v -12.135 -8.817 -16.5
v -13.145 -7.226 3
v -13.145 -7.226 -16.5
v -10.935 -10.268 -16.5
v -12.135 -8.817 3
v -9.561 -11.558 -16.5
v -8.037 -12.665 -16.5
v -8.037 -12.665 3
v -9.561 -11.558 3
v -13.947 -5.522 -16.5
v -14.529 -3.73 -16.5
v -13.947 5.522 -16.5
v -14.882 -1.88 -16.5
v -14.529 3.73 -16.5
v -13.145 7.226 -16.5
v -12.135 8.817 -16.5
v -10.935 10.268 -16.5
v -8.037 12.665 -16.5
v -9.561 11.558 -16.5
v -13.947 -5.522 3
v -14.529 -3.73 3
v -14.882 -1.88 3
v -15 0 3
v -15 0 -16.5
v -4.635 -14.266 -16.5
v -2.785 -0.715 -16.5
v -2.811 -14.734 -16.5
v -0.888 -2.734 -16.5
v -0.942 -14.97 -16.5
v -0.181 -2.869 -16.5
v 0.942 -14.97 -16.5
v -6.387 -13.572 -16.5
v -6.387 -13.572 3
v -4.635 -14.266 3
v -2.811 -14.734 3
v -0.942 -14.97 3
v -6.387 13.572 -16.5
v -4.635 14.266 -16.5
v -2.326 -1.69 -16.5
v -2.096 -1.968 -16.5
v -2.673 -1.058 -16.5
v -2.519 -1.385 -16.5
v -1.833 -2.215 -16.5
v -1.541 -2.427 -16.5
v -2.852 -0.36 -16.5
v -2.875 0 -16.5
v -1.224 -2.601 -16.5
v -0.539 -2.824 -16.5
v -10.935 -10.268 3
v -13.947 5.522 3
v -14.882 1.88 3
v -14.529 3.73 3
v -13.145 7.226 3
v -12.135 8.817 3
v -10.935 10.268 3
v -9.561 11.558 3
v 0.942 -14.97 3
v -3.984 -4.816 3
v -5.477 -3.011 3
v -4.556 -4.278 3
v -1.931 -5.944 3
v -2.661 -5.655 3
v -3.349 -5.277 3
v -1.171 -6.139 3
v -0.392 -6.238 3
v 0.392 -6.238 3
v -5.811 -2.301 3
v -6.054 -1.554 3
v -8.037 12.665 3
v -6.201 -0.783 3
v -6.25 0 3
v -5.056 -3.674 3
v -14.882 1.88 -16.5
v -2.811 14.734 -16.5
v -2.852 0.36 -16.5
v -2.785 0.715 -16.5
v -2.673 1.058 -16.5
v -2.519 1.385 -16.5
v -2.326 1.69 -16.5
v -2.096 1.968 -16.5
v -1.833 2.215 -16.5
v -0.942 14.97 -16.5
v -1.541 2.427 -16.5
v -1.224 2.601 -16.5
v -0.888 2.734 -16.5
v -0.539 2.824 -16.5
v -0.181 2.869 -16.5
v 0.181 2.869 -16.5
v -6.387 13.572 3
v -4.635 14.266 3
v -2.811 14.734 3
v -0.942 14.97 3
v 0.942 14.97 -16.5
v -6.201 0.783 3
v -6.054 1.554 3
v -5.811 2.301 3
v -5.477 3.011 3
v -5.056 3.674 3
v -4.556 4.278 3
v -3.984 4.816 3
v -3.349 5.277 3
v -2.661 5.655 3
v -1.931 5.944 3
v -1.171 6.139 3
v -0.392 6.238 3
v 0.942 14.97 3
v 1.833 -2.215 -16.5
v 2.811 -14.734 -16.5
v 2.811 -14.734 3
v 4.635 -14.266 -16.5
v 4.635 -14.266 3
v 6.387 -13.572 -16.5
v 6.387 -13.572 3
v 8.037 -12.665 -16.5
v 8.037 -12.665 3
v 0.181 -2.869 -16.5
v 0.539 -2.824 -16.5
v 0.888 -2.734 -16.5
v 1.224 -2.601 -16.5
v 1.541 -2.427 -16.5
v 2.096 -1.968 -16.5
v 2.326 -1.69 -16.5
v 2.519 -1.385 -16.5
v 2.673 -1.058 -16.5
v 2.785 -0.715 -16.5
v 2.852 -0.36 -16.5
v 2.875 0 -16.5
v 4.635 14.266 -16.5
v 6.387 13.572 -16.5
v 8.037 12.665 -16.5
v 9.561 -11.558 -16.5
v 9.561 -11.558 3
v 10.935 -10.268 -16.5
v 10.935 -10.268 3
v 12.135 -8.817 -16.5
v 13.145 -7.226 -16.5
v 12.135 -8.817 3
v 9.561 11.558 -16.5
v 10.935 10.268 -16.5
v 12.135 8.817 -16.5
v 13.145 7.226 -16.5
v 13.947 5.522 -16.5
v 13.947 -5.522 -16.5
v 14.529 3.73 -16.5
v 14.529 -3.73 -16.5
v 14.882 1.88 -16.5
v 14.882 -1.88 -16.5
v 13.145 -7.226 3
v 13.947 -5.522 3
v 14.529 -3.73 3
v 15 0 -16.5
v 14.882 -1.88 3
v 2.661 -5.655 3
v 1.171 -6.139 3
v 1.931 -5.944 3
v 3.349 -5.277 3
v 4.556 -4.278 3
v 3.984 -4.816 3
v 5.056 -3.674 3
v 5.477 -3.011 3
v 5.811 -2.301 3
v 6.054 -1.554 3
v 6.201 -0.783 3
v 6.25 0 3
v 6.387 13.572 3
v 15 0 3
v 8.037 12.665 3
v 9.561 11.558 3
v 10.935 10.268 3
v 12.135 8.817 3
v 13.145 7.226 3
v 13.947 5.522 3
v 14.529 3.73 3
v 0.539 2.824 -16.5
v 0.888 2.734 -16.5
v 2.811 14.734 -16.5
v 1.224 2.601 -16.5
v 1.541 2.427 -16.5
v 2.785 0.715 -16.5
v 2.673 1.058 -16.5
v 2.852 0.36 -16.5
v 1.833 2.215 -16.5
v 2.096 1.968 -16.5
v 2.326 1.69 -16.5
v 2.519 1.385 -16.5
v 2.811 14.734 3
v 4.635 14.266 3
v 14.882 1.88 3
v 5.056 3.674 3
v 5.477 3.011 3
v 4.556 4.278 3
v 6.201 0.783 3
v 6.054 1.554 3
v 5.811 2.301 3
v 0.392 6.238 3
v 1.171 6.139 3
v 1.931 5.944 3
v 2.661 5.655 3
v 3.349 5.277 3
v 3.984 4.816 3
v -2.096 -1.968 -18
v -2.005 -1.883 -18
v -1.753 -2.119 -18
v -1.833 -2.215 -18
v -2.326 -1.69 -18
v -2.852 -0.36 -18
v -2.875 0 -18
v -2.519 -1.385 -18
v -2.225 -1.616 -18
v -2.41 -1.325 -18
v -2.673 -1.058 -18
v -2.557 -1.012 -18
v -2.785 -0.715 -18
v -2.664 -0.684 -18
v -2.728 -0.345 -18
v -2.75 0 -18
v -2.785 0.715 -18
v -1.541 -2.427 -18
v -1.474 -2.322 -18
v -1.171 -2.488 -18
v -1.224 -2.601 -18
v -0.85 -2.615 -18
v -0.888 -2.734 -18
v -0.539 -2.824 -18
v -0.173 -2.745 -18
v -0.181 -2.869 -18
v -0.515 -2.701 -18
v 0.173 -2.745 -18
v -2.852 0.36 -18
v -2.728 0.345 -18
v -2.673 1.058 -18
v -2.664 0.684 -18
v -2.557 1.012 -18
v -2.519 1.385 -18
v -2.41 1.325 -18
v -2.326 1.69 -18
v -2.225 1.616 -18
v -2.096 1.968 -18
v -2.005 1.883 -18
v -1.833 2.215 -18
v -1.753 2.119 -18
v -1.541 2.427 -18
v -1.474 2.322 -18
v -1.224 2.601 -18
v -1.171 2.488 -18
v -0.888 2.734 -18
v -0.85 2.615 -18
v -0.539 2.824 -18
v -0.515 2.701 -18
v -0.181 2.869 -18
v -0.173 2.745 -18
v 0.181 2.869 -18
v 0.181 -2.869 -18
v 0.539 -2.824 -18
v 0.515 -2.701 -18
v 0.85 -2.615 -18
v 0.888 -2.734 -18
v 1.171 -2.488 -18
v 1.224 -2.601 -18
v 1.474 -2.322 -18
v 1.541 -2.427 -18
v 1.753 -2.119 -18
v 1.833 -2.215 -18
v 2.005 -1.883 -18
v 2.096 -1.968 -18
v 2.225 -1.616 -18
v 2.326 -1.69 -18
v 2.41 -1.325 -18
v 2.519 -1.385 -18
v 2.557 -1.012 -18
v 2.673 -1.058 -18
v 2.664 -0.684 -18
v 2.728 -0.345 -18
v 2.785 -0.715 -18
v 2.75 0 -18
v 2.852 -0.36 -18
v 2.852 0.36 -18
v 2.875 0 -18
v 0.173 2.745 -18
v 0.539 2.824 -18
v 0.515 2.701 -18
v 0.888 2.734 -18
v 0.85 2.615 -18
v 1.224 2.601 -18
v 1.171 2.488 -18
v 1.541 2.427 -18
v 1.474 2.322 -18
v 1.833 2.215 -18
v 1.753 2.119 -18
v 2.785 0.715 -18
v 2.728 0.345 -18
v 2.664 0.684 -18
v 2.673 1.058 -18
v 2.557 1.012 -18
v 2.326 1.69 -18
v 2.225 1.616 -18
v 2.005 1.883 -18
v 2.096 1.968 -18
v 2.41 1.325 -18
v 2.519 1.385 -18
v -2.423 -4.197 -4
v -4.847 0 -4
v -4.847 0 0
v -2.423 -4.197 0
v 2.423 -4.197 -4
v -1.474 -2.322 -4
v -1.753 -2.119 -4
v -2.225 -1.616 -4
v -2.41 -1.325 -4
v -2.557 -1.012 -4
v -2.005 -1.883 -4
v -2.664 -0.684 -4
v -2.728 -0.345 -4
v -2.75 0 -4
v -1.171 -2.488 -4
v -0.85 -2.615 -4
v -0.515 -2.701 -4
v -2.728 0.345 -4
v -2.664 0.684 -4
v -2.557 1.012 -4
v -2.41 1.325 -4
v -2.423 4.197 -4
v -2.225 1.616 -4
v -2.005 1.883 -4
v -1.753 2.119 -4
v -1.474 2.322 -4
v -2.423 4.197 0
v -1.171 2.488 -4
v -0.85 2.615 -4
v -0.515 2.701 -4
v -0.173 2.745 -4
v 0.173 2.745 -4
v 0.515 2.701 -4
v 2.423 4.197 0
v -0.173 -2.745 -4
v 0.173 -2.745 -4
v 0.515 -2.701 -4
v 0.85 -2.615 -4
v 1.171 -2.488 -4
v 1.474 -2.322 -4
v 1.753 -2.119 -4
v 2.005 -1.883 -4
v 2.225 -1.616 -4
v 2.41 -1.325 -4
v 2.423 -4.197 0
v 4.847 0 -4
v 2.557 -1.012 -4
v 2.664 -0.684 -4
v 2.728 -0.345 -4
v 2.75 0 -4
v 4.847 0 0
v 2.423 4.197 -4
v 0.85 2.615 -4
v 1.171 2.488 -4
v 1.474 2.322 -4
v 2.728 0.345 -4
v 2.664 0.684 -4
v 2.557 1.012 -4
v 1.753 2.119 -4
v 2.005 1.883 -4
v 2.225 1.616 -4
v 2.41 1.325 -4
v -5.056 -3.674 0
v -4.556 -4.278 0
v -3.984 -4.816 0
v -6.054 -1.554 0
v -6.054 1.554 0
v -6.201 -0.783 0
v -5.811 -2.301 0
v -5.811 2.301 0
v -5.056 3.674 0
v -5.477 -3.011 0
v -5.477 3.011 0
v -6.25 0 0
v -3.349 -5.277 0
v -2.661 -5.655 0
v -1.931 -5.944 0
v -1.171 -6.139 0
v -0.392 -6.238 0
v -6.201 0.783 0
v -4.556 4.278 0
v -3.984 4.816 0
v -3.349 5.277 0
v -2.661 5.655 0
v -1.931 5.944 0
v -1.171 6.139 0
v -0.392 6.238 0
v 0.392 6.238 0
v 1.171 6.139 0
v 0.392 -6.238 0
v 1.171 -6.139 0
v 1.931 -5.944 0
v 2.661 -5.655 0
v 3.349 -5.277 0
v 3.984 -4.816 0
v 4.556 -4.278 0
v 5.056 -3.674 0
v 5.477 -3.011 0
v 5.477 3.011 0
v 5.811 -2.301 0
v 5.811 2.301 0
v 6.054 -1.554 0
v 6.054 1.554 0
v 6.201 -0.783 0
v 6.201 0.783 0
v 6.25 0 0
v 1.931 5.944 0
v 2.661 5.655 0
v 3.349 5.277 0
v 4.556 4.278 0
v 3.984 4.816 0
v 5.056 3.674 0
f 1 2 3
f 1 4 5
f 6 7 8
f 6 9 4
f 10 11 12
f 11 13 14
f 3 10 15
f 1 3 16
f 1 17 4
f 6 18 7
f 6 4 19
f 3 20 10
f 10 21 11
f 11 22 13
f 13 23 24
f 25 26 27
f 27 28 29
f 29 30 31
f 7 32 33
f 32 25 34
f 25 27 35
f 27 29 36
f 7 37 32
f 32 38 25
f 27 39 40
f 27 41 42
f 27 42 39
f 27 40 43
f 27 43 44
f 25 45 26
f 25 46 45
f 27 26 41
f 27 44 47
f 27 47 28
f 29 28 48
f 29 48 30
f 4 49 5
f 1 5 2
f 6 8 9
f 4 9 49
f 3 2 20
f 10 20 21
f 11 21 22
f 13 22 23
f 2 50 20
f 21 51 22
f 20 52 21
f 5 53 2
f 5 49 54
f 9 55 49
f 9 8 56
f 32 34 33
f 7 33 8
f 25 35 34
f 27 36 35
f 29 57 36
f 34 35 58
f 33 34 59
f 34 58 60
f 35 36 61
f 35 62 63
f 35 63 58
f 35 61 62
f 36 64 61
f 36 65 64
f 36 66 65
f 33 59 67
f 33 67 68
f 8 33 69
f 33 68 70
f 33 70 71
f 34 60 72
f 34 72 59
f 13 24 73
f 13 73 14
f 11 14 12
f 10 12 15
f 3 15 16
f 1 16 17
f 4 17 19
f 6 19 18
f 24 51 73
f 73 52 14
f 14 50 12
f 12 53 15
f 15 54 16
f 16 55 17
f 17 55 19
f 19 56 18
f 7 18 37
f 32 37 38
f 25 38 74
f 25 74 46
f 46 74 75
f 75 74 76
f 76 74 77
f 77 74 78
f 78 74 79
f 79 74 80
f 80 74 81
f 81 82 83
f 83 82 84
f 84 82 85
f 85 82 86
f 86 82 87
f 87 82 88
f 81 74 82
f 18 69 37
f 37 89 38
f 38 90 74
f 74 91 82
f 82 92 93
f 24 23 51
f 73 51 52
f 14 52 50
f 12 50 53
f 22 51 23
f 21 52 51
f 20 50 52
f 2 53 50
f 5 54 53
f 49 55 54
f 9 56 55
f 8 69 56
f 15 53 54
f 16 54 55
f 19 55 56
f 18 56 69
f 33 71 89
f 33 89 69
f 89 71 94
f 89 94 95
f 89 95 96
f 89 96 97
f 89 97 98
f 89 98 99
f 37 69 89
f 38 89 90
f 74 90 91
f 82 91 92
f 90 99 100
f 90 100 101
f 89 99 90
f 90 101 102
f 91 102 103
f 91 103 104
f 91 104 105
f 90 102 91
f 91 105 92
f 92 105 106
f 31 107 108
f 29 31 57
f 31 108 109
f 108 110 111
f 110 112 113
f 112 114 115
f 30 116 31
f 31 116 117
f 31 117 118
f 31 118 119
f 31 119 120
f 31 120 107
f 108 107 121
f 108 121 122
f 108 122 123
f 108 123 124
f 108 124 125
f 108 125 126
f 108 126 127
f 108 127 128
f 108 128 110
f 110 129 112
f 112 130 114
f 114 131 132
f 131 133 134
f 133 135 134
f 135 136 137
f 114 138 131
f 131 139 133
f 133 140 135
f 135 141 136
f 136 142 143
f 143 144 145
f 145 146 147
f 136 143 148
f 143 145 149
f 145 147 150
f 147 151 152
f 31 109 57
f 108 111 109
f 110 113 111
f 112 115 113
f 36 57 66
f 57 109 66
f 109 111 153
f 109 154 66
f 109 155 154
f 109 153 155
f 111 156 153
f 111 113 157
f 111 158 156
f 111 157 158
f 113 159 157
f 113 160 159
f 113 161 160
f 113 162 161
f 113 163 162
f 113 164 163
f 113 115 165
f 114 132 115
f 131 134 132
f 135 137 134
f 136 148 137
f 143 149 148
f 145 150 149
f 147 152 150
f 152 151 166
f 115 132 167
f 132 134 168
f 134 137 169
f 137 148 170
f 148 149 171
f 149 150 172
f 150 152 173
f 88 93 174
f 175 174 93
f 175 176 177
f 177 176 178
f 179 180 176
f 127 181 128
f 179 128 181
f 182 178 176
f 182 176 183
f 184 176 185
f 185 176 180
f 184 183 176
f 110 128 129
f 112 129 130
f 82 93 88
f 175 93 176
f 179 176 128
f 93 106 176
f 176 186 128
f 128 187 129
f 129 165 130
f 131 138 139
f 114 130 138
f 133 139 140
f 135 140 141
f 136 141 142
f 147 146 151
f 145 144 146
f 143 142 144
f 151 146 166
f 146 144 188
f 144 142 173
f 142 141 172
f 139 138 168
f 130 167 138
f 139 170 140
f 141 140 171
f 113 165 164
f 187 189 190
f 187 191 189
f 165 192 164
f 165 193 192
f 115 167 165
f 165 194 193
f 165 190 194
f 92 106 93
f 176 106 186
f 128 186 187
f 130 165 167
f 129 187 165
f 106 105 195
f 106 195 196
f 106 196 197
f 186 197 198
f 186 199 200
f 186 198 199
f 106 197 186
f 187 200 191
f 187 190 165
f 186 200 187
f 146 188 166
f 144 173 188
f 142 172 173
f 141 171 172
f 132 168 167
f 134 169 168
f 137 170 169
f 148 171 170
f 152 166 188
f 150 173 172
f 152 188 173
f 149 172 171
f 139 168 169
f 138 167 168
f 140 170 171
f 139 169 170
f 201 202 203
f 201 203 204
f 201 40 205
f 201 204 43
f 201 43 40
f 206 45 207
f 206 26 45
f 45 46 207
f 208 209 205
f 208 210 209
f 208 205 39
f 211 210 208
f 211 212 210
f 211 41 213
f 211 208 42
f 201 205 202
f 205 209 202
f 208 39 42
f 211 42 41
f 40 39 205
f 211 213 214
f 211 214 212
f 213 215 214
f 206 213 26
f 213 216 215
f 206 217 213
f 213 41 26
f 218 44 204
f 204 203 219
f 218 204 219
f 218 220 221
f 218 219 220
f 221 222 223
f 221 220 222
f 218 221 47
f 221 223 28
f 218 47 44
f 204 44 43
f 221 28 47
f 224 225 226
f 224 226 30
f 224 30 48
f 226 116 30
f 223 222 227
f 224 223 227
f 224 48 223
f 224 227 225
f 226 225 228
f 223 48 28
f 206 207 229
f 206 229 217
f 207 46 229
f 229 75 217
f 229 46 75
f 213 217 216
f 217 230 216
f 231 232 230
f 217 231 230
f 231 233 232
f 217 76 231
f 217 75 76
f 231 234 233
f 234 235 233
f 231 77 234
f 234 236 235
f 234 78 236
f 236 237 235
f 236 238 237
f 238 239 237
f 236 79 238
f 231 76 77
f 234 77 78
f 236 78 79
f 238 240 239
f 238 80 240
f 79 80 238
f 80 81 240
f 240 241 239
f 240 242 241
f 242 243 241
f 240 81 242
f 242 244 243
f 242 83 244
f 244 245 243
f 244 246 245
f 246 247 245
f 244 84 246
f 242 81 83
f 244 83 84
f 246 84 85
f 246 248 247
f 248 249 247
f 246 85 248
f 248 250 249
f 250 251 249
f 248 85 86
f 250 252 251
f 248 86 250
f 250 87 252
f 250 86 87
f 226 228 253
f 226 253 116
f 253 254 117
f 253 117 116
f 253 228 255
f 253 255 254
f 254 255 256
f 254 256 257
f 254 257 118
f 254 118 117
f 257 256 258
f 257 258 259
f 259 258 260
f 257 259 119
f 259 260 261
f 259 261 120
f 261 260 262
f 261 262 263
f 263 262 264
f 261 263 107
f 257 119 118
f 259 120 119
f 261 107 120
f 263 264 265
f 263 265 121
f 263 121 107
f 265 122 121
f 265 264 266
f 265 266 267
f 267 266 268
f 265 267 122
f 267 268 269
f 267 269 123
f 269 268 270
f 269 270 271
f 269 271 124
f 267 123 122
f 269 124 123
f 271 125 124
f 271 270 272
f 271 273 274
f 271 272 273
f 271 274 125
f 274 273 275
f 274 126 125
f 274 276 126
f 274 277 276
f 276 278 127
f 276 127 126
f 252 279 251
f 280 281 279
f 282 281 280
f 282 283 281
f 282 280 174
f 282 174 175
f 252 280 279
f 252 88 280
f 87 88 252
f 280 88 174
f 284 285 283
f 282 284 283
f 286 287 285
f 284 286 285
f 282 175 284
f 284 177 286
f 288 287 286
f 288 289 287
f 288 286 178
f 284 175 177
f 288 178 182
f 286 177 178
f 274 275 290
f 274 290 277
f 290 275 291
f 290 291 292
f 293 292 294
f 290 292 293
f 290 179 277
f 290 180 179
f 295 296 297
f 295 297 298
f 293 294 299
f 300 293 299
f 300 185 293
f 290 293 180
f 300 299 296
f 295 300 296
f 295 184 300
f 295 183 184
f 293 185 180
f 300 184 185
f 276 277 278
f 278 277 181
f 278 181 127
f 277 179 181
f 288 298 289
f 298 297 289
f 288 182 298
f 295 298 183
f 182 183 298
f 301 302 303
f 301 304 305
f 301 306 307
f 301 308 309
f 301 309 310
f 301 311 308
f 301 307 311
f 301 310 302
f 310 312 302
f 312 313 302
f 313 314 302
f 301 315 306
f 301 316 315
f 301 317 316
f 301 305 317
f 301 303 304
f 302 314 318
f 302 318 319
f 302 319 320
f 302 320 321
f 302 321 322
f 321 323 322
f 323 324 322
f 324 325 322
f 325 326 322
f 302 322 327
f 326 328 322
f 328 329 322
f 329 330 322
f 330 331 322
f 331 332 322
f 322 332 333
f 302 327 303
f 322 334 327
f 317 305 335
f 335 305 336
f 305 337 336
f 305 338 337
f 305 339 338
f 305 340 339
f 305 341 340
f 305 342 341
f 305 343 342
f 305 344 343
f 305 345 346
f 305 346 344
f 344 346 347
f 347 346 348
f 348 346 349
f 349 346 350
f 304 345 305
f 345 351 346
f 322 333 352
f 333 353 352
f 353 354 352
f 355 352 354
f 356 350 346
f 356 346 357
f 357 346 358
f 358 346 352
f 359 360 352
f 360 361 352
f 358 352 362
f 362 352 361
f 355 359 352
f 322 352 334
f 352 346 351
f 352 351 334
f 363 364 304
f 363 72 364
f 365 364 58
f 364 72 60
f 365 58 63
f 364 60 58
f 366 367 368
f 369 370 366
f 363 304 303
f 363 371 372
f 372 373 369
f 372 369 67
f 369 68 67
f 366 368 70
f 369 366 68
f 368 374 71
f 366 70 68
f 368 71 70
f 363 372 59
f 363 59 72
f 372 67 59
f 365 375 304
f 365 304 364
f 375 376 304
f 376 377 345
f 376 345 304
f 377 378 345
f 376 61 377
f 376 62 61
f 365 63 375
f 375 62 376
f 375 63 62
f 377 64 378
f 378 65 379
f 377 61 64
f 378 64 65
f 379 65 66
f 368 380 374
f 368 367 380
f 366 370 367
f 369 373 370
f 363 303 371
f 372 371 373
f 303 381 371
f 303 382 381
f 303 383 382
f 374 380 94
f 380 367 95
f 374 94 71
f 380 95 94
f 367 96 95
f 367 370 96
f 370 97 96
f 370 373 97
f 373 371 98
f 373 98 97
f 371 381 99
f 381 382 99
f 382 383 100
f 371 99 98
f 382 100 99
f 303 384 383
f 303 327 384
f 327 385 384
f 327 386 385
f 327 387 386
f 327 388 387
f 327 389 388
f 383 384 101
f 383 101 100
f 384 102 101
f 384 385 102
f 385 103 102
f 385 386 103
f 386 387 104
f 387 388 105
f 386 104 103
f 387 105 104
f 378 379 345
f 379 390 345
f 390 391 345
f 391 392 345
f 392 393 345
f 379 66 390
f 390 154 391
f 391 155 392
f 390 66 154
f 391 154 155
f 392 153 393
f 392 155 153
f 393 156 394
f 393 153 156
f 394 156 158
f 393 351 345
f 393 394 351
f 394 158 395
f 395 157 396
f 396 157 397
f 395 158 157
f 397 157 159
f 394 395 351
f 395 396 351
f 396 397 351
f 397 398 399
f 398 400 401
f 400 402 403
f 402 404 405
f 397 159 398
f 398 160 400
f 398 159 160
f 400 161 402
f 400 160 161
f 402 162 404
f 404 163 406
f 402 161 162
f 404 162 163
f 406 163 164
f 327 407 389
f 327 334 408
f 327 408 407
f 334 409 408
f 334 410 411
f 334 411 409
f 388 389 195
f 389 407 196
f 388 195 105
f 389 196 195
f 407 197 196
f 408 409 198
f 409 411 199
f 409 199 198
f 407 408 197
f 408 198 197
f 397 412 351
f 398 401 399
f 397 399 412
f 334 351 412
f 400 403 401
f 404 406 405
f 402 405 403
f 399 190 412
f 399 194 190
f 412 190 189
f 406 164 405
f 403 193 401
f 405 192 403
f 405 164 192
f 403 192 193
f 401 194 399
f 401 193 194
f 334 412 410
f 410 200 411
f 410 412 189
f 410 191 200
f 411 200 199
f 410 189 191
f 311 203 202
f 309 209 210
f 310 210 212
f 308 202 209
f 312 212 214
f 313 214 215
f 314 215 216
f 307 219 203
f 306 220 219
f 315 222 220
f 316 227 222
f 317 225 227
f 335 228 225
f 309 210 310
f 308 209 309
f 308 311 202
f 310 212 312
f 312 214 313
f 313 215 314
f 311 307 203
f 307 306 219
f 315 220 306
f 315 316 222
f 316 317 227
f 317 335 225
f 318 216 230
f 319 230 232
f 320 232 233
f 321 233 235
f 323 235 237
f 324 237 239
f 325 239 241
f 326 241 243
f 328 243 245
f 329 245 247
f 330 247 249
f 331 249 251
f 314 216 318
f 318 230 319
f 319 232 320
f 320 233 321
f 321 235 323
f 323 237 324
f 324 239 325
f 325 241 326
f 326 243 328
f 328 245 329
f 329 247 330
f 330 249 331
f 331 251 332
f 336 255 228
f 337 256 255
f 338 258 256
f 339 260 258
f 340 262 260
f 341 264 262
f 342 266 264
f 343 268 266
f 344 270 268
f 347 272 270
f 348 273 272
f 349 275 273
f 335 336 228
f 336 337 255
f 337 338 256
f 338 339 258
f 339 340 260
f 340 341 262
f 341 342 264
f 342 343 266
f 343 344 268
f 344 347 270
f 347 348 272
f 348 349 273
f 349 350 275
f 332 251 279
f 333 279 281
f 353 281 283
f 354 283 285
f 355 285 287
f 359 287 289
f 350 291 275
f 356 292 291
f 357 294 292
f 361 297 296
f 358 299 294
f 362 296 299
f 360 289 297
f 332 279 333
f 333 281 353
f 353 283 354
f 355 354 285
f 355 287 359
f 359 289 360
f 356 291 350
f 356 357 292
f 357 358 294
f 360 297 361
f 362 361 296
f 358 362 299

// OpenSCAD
$fn = 50;

difference() {
	union() {
		translate(v = [0, 0, -16.5]) {
			cylinder(h = 19.5, r = 15.0);
		}
		#translate(v = [0, 0, -18.0]) {
			cylinder(h = 18, r = 2.875);
		}
	}
	union() {
		translate(v = [0, 0, 0]) {
			rotate(a = [0, 0, 0]) {
				difference() {
					union() {
						translate(v = [0, 0, -4]) {
							linear_extrude(height = 4) {
								polygon(points = [[4.8468, 0.0], [2.4234000000000004, 4.197451927062417], [-2.423399999999999, 4.197451927062417], [-4.8468, 5.935618106107392e-16], [-2.423400000000002, -4.197451927062416], [2.423399999999997, -4.197451927062419]]);
							}
						}
					}
					union();
				}
			}
		}
		#cylinder(h = 3, r = 6.25);
		#translate(v = [0, 0, -100.0]) {
			cylinder(h = 200, r = 2.75);
		}
	}
}
